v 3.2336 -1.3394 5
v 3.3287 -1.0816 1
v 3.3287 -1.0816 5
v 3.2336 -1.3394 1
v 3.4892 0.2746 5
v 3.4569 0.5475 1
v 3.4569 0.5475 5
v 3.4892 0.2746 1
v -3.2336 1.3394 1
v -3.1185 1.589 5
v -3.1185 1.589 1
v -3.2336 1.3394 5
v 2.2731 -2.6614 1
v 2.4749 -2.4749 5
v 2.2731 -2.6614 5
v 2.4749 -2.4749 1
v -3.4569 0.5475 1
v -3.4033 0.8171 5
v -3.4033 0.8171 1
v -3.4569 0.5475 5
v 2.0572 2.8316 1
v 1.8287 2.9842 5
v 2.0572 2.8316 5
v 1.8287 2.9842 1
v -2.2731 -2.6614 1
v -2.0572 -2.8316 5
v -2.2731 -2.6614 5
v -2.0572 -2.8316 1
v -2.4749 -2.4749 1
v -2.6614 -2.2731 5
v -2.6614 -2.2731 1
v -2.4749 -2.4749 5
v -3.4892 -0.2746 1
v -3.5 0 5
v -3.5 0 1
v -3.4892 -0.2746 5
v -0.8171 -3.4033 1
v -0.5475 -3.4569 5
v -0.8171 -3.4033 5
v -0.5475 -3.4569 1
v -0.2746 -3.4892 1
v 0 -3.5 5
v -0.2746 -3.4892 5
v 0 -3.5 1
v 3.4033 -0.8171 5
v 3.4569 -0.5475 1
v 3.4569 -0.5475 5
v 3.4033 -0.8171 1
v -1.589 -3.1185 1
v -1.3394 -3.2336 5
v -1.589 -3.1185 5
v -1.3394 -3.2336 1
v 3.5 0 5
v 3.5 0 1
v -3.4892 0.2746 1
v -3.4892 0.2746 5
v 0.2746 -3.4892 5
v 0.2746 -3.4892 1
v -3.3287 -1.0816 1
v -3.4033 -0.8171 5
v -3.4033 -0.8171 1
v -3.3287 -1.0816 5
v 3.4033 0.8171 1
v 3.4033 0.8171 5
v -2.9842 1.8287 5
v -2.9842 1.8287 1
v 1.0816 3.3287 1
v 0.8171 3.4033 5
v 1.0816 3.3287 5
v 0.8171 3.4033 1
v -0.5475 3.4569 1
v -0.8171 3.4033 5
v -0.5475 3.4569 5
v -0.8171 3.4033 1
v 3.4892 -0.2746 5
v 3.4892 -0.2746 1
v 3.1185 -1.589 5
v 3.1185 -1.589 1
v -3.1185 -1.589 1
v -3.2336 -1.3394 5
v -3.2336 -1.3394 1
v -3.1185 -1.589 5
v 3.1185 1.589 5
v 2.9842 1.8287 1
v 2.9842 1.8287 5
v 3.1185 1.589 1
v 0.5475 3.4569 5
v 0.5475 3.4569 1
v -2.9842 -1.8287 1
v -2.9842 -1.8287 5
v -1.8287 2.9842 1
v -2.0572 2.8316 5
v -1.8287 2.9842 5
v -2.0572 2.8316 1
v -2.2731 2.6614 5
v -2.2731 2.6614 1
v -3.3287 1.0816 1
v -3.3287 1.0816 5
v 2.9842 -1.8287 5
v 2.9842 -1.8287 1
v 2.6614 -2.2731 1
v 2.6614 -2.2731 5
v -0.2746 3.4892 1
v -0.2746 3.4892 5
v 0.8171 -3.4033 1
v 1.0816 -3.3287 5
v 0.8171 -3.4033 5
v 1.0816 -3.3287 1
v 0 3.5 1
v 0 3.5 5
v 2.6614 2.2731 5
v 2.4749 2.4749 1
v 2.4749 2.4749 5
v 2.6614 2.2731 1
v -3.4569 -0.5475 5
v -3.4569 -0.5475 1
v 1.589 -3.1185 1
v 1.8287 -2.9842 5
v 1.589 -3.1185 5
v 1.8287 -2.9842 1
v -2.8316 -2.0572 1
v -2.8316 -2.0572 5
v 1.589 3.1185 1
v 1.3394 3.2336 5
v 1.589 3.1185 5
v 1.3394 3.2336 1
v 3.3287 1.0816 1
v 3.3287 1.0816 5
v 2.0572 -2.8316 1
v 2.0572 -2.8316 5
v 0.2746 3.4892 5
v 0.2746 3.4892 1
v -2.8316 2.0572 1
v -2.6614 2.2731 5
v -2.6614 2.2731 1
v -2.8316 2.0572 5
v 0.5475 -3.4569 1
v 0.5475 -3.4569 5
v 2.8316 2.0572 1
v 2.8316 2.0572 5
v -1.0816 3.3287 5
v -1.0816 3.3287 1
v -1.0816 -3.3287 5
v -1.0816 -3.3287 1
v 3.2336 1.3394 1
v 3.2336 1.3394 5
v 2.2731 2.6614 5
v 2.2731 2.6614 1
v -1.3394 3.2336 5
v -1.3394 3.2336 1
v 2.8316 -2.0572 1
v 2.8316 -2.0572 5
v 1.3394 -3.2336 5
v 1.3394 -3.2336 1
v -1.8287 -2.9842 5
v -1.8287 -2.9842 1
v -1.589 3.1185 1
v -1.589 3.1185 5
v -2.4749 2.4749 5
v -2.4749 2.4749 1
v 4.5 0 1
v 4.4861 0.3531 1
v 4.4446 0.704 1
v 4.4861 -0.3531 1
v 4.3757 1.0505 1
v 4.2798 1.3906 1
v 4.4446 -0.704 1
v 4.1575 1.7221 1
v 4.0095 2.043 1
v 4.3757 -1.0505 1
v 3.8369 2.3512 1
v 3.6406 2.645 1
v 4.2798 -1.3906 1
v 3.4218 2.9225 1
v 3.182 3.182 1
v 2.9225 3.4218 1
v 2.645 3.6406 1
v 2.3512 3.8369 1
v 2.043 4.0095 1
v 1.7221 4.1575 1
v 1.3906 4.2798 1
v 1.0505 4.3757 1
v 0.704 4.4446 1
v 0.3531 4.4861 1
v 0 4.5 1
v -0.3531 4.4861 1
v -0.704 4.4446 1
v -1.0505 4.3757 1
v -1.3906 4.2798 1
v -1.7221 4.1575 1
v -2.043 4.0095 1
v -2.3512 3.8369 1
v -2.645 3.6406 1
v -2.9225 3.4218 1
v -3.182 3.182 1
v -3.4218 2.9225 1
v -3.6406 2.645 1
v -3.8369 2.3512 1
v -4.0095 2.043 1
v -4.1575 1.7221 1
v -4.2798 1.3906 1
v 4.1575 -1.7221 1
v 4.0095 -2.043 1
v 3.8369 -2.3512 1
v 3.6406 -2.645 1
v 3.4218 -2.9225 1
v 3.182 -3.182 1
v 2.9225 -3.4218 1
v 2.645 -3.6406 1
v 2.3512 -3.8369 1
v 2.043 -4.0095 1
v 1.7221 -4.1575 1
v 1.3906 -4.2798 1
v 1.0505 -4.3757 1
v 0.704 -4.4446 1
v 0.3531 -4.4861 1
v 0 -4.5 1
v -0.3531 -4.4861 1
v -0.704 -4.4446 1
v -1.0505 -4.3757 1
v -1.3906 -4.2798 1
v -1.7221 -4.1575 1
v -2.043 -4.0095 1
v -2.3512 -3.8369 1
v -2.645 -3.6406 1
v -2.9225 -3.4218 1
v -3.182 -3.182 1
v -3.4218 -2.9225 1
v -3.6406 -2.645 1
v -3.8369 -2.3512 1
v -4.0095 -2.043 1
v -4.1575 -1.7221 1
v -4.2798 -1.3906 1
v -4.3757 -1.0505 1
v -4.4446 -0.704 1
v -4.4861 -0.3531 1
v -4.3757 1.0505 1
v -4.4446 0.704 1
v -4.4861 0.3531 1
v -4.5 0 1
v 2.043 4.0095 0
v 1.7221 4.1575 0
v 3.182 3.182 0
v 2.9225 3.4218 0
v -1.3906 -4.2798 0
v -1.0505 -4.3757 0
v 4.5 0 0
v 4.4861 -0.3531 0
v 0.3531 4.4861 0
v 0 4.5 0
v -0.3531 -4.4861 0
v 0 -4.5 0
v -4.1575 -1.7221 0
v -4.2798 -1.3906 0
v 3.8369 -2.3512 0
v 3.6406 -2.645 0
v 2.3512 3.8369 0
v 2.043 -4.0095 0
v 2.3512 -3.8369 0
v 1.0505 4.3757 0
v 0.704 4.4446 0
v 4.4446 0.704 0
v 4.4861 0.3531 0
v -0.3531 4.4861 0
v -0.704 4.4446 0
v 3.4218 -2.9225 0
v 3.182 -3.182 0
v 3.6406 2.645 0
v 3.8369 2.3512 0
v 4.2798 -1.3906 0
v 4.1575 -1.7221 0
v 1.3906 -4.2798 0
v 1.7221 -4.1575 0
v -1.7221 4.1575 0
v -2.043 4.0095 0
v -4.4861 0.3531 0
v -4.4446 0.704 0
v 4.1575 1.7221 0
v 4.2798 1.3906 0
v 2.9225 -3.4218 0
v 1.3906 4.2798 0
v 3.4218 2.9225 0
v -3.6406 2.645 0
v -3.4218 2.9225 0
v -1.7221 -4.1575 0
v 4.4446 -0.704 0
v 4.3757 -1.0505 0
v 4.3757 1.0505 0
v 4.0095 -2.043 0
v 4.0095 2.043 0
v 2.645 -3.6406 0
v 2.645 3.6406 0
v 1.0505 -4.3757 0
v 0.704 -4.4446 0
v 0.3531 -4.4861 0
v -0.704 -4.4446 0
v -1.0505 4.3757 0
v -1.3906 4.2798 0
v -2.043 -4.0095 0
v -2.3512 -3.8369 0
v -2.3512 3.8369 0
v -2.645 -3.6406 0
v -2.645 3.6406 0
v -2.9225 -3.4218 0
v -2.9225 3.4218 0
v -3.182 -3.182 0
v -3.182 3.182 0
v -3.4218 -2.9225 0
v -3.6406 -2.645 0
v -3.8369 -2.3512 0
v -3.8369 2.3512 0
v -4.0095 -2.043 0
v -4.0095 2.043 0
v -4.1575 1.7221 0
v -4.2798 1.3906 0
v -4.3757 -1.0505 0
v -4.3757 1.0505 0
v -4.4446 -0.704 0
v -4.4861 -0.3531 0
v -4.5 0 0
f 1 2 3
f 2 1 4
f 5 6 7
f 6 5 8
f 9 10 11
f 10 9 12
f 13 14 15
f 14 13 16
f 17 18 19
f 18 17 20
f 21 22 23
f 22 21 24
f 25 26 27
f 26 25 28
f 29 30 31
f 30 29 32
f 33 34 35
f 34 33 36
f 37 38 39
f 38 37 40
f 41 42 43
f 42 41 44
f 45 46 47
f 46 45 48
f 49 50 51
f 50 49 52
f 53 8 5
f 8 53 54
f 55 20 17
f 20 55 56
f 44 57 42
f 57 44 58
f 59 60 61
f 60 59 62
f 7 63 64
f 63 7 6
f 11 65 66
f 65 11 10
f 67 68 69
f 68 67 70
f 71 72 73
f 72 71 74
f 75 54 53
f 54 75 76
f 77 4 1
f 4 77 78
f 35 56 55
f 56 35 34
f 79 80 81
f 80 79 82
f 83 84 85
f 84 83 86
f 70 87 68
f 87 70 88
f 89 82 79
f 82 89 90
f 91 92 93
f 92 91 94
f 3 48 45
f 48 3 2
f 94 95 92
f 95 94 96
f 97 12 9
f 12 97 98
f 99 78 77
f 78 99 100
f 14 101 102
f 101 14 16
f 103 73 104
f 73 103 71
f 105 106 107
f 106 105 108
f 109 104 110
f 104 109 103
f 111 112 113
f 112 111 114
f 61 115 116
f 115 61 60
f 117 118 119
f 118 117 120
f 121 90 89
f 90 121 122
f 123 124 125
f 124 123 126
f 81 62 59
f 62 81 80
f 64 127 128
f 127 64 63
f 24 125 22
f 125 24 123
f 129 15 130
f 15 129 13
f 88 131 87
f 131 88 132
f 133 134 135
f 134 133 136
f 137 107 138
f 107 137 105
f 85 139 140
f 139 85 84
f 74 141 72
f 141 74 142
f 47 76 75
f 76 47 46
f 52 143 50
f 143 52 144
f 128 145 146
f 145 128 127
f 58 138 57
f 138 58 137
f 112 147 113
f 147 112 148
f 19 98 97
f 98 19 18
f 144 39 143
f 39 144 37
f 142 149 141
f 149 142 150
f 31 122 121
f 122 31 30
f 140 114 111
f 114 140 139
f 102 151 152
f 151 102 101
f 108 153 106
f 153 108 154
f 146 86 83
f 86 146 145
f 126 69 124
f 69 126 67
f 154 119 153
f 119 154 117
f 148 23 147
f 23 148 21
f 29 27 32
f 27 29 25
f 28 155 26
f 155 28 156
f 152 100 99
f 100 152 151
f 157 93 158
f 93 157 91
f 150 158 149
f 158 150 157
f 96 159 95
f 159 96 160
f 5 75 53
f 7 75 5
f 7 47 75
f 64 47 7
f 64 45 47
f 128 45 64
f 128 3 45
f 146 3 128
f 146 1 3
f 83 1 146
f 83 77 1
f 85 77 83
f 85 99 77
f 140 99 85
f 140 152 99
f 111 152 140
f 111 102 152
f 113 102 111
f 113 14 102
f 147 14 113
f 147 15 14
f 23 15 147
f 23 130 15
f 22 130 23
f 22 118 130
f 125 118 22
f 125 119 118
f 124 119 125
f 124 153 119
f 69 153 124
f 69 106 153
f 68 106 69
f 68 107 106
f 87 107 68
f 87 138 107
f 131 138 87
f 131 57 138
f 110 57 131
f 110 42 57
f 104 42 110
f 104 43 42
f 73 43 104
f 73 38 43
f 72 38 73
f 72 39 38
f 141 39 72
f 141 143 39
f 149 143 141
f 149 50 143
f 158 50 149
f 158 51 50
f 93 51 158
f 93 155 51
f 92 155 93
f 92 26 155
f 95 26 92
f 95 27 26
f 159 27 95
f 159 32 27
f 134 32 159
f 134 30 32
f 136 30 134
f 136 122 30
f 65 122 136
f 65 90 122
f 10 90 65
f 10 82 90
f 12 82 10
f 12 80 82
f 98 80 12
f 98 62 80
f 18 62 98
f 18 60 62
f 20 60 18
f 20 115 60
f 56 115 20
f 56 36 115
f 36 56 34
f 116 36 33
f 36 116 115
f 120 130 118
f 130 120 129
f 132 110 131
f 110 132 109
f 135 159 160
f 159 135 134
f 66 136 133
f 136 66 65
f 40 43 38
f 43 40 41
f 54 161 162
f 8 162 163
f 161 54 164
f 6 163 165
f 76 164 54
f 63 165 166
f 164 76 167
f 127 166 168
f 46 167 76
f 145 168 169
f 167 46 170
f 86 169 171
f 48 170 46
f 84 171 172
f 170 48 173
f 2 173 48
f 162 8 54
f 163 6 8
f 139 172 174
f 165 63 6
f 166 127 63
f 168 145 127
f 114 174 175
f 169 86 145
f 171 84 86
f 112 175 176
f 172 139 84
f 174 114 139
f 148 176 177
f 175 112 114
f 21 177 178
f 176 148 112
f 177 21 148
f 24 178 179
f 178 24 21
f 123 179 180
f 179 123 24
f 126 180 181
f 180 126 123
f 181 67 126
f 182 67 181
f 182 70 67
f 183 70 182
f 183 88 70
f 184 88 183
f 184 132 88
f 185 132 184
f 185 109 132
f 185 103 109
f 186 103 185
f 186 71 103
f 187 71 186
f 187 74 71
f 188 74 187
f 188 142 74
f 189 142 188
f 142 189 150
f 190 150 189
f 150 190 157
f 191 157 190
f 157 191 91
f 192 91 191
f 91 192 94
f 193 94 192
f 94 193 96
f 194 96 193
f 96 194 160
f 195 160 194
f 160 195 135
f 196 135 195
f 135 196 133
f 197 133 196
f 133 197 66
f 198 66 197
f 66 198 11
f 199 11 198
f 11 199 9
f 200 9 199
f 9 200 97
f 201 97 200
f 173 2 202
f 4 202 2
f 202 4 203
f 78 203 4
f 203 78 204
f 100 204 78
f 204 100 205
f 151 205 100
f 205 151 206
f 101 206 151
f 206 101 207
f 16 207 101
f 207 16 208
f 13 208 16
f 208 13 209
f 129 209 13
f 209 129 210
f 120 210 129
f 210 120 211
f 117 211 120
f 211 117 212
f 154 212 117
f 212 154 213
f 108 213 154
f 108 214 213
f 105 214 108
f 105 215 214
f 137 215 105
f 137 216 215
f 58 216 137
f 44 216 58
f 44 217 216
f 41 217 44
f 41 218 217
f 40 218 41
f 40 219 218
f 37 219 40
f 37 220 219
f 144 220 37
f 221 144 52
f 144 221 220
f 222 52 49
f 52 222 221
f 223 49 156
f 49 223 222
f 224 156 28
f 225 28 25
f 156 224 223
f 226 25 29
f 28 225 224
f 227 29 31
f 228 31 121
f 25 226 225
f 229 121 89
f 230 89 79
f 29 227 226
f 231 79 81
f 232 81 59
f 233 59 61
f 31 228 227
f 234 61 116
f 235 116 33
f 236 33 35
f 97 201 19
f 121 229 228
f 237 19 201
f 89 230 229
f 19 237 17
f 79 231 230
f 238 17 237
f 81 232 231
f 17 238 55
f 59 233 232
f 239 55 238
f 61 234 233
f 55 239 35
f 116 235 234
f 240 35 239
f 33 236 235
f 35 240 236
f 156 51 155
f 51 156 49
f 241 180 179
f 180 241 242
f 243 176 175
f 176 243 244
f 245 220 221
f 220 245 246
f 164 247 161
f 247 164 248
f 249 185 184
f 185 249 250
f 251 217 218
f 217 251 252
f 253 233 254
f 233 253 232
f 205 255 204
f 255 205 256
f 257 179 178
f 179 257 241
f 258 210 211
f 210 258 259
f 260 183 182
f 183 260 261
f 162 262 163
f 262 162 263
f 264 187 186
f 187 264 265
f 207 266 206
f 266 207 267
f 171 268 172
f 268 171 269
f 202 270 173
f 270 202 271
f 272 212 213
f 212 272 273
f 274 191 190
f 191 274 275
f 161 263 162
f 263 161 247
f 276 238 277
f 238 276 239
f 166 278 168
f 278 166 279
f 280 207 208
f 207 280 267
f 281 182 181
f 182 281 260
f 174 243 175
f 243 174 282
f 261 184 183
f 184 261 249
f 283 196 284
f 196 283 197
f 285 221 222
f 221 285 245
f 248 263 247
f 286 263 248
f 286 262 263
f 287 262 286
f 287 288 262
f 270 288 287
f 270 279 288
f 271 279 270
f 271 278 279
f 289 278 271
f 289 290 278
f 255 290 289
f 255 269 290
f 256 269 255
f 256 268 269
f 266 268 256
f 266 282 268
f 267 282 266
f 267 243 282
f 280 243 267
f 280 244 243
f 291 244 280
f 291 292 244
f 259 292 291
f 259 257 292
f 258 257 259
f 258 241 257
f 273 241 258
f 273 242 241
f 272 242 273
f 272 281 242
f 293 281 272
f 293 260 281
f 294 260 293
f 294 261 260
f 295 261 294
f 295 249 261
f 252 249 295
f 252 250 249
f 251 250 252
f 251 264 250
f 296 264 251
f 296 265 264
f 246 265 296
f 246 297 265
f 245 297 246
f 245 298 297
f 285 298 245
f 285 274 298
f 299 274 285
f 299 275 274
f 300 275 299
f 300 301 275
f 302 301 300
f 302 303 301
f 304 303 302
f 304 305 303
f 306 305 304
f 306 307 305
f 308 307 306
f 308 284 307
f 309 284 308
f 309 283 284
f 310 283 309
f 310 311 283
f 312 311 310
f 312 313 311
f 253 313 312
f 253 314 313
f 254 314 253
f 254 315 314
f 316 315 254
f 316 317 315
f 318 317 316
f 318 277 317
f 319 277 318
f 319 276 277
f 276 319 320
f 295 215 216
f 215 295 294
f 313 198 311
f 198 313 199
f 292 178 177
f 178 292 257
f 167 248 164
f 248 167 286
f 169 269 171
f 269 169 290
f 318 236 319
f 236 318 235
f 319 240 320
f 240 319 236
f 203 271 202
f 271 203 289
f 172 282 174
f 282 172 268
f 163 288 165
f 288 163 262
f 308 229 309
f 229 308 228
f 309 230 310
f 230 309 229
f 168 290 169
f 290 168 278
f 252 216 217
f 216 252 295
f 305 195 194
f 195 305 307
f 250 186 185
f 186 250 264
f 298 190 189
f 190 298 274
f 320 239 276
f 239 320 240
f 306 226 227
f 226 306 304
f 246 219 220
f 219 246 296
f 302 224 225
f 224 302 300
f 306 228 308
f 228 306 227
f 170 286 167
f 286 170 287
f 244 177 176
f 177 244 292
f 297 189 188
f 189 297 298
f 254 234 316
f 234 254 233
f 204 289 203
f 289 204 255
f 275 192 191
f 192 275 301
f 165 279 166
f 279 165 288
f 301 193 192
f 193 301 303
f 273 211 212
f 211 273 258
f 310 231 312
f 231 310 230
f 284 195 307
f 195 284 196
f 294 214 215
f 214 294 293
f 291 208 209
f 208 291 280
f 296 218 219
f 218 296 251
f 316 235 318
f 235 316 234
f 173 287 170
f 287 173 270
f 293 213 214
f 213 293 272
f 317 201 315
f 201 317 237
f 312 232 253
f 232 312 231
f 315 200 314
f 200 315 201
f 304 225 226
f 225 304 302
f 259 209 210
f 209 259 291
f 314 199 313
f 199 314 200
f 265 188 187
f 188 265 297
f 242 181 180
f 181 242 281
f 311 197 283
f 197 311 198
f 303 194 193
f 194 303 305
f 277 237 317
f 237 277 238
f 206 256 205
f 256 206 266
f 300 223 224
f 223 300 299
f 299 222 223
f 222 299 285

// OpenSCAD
// file: ../configurations/global.scad
// external size
case_external_x_size = 90;
case_external_y_size = 140;
case_external_z_size = 40;
case_external_panes_thickness = 4.8;

facade_front_round_edges_radius = 5;
facade_throws_margin = 5;

facade_front_fixation_throws_diameter = 3.5;

// facade corners
facade_corners_offset_lenght = 9;
facade_corners_main_x_size = 19;
facade_corners_main_y_size = 19;
facade_corners_main_thickness = 11;

facade_fn = 100;


facade_controller_coords = [
    case_external_x_size / 2,
    case_external_y_size / 2 - 30,
];


// Screen frames
screen_frame_electronic_board_margin = 3;
screen_frame_throw_diameter = 3.5;
screen_frame_piece_z_size = 1.5;
screen_frame_piece_glass_embedding_margin = 1;
screen_frame_piece_glass_embedding_z_depth = 1;
screen_frame_facade_piece_z_size = 1;
screen_frame_fn = 100;

screen_glass_visible_zone_x_margin = 0.7;
screen_glass_visible_zone_y_margin = 0.7;
screen_glass_z_size = 1;

facade_screen_coords = [
    case_external_x_size / 2,
    case_external_y_size / 2 + 30,
];


// Generics
insert_throw_diameter = 4.2;
insert_throw_length = 6 + 2;


// Controller facade
controller_breadboard_x_size_point = 28;
controller_breadboard_y_size_point = 9;

controller_facade_z_size = 2;
controller_facade_button_throw_margin = 1;

controller_facade_border_rounded_border_1 = 5;
controller_facade_border_rounded_border_2 = 4;

controller_facade_with_border_x_size = 78;
controller_facade_with_border_y_size = 45;

controller_facade_border_throws_margin = 5;
controller_facade_border_fn = 80;


// Cross Button
controller_cross_button_x_y_size = 20;
controller_cross_button_z_size = 4;
controller_cross_button_thickness = 6;
controller_cross_button_round_edges_radius = 1;
controller_cross_button_support_x_y_size = 22;
controller_cross_button_support_z_size = 1;
controller_cross_button_fn = 150;


// A and B Buttons
controller_a_b_button_diameter = 7;
controller_a_b_button_z_size = 4;
controller_a_b_button_support_diameter = 9;
controller_a_b_button_support_z_size = 1;
controller_a_b_button_fn = 80;


// small Buttons
controller_small_button_diameter = 5;
controller_small_button_z_size = 3;
controller_small_button_support_diameter = 7;
controller_small_button_support_z_size = 1;
controller_small_button_fn = 80;

// Directional cross
controller_directional_cross_points_coords = [6, 5];
controller_start_button_points_coords = [14, 3];
controller_select_button_points_coords = [18, 3];
controller_menu_button_points_coords = [14, 7];
controller_option_button_points_coords = [18, 7];
controller_a_button_points_coords = [23, 4];
controller_b_button_points_coords = [27, 6];
controller_bolt_throws_list = [
    [2, 2],
    [2, 8],
    [10, 2],
    [10, 8],
    [27, 2],
    [23, 8],
];
// file: subpieces/round-button.scad
/**
 * roundButton
 * @name roundButton
 * @description Base method for creating buttons
 * @type Supbiece
 * @parent usbChargerComponent
 */
module roundButton(
    diameter,
    button_z_size,
    support_diameter,
    support_z_size,
    $fn = $fn
) {
    union() {
        translate([0, 0, support_z_size])
            cylinder(h = button_z_size, d = diameter, center = false, $fn = $fn);

        cylinder(h = support_z_size, d = support_diameter, center = false, $fn = $fn);
    }
}
// main file
use <./subpieces/round-button.scad>

include <../configurations/global.scad>

module abButtonPiece(
    diameter = controller_a_b_button_diameter,
    button_z_size = controller_a_b_button_z_size,
    support_diameter = controller_a_b_button_support_diameter,
    support_z_size = controller_a_b_button_support_z_size,
    $fn = controller_a_b_button_fn
) {

    color("Crimson")
        roundButton(
            diameter,
            button_z_size,
            support_diameter,
            support_z_size,
            $fn = $fn
        );
}

abButtonPiece();
